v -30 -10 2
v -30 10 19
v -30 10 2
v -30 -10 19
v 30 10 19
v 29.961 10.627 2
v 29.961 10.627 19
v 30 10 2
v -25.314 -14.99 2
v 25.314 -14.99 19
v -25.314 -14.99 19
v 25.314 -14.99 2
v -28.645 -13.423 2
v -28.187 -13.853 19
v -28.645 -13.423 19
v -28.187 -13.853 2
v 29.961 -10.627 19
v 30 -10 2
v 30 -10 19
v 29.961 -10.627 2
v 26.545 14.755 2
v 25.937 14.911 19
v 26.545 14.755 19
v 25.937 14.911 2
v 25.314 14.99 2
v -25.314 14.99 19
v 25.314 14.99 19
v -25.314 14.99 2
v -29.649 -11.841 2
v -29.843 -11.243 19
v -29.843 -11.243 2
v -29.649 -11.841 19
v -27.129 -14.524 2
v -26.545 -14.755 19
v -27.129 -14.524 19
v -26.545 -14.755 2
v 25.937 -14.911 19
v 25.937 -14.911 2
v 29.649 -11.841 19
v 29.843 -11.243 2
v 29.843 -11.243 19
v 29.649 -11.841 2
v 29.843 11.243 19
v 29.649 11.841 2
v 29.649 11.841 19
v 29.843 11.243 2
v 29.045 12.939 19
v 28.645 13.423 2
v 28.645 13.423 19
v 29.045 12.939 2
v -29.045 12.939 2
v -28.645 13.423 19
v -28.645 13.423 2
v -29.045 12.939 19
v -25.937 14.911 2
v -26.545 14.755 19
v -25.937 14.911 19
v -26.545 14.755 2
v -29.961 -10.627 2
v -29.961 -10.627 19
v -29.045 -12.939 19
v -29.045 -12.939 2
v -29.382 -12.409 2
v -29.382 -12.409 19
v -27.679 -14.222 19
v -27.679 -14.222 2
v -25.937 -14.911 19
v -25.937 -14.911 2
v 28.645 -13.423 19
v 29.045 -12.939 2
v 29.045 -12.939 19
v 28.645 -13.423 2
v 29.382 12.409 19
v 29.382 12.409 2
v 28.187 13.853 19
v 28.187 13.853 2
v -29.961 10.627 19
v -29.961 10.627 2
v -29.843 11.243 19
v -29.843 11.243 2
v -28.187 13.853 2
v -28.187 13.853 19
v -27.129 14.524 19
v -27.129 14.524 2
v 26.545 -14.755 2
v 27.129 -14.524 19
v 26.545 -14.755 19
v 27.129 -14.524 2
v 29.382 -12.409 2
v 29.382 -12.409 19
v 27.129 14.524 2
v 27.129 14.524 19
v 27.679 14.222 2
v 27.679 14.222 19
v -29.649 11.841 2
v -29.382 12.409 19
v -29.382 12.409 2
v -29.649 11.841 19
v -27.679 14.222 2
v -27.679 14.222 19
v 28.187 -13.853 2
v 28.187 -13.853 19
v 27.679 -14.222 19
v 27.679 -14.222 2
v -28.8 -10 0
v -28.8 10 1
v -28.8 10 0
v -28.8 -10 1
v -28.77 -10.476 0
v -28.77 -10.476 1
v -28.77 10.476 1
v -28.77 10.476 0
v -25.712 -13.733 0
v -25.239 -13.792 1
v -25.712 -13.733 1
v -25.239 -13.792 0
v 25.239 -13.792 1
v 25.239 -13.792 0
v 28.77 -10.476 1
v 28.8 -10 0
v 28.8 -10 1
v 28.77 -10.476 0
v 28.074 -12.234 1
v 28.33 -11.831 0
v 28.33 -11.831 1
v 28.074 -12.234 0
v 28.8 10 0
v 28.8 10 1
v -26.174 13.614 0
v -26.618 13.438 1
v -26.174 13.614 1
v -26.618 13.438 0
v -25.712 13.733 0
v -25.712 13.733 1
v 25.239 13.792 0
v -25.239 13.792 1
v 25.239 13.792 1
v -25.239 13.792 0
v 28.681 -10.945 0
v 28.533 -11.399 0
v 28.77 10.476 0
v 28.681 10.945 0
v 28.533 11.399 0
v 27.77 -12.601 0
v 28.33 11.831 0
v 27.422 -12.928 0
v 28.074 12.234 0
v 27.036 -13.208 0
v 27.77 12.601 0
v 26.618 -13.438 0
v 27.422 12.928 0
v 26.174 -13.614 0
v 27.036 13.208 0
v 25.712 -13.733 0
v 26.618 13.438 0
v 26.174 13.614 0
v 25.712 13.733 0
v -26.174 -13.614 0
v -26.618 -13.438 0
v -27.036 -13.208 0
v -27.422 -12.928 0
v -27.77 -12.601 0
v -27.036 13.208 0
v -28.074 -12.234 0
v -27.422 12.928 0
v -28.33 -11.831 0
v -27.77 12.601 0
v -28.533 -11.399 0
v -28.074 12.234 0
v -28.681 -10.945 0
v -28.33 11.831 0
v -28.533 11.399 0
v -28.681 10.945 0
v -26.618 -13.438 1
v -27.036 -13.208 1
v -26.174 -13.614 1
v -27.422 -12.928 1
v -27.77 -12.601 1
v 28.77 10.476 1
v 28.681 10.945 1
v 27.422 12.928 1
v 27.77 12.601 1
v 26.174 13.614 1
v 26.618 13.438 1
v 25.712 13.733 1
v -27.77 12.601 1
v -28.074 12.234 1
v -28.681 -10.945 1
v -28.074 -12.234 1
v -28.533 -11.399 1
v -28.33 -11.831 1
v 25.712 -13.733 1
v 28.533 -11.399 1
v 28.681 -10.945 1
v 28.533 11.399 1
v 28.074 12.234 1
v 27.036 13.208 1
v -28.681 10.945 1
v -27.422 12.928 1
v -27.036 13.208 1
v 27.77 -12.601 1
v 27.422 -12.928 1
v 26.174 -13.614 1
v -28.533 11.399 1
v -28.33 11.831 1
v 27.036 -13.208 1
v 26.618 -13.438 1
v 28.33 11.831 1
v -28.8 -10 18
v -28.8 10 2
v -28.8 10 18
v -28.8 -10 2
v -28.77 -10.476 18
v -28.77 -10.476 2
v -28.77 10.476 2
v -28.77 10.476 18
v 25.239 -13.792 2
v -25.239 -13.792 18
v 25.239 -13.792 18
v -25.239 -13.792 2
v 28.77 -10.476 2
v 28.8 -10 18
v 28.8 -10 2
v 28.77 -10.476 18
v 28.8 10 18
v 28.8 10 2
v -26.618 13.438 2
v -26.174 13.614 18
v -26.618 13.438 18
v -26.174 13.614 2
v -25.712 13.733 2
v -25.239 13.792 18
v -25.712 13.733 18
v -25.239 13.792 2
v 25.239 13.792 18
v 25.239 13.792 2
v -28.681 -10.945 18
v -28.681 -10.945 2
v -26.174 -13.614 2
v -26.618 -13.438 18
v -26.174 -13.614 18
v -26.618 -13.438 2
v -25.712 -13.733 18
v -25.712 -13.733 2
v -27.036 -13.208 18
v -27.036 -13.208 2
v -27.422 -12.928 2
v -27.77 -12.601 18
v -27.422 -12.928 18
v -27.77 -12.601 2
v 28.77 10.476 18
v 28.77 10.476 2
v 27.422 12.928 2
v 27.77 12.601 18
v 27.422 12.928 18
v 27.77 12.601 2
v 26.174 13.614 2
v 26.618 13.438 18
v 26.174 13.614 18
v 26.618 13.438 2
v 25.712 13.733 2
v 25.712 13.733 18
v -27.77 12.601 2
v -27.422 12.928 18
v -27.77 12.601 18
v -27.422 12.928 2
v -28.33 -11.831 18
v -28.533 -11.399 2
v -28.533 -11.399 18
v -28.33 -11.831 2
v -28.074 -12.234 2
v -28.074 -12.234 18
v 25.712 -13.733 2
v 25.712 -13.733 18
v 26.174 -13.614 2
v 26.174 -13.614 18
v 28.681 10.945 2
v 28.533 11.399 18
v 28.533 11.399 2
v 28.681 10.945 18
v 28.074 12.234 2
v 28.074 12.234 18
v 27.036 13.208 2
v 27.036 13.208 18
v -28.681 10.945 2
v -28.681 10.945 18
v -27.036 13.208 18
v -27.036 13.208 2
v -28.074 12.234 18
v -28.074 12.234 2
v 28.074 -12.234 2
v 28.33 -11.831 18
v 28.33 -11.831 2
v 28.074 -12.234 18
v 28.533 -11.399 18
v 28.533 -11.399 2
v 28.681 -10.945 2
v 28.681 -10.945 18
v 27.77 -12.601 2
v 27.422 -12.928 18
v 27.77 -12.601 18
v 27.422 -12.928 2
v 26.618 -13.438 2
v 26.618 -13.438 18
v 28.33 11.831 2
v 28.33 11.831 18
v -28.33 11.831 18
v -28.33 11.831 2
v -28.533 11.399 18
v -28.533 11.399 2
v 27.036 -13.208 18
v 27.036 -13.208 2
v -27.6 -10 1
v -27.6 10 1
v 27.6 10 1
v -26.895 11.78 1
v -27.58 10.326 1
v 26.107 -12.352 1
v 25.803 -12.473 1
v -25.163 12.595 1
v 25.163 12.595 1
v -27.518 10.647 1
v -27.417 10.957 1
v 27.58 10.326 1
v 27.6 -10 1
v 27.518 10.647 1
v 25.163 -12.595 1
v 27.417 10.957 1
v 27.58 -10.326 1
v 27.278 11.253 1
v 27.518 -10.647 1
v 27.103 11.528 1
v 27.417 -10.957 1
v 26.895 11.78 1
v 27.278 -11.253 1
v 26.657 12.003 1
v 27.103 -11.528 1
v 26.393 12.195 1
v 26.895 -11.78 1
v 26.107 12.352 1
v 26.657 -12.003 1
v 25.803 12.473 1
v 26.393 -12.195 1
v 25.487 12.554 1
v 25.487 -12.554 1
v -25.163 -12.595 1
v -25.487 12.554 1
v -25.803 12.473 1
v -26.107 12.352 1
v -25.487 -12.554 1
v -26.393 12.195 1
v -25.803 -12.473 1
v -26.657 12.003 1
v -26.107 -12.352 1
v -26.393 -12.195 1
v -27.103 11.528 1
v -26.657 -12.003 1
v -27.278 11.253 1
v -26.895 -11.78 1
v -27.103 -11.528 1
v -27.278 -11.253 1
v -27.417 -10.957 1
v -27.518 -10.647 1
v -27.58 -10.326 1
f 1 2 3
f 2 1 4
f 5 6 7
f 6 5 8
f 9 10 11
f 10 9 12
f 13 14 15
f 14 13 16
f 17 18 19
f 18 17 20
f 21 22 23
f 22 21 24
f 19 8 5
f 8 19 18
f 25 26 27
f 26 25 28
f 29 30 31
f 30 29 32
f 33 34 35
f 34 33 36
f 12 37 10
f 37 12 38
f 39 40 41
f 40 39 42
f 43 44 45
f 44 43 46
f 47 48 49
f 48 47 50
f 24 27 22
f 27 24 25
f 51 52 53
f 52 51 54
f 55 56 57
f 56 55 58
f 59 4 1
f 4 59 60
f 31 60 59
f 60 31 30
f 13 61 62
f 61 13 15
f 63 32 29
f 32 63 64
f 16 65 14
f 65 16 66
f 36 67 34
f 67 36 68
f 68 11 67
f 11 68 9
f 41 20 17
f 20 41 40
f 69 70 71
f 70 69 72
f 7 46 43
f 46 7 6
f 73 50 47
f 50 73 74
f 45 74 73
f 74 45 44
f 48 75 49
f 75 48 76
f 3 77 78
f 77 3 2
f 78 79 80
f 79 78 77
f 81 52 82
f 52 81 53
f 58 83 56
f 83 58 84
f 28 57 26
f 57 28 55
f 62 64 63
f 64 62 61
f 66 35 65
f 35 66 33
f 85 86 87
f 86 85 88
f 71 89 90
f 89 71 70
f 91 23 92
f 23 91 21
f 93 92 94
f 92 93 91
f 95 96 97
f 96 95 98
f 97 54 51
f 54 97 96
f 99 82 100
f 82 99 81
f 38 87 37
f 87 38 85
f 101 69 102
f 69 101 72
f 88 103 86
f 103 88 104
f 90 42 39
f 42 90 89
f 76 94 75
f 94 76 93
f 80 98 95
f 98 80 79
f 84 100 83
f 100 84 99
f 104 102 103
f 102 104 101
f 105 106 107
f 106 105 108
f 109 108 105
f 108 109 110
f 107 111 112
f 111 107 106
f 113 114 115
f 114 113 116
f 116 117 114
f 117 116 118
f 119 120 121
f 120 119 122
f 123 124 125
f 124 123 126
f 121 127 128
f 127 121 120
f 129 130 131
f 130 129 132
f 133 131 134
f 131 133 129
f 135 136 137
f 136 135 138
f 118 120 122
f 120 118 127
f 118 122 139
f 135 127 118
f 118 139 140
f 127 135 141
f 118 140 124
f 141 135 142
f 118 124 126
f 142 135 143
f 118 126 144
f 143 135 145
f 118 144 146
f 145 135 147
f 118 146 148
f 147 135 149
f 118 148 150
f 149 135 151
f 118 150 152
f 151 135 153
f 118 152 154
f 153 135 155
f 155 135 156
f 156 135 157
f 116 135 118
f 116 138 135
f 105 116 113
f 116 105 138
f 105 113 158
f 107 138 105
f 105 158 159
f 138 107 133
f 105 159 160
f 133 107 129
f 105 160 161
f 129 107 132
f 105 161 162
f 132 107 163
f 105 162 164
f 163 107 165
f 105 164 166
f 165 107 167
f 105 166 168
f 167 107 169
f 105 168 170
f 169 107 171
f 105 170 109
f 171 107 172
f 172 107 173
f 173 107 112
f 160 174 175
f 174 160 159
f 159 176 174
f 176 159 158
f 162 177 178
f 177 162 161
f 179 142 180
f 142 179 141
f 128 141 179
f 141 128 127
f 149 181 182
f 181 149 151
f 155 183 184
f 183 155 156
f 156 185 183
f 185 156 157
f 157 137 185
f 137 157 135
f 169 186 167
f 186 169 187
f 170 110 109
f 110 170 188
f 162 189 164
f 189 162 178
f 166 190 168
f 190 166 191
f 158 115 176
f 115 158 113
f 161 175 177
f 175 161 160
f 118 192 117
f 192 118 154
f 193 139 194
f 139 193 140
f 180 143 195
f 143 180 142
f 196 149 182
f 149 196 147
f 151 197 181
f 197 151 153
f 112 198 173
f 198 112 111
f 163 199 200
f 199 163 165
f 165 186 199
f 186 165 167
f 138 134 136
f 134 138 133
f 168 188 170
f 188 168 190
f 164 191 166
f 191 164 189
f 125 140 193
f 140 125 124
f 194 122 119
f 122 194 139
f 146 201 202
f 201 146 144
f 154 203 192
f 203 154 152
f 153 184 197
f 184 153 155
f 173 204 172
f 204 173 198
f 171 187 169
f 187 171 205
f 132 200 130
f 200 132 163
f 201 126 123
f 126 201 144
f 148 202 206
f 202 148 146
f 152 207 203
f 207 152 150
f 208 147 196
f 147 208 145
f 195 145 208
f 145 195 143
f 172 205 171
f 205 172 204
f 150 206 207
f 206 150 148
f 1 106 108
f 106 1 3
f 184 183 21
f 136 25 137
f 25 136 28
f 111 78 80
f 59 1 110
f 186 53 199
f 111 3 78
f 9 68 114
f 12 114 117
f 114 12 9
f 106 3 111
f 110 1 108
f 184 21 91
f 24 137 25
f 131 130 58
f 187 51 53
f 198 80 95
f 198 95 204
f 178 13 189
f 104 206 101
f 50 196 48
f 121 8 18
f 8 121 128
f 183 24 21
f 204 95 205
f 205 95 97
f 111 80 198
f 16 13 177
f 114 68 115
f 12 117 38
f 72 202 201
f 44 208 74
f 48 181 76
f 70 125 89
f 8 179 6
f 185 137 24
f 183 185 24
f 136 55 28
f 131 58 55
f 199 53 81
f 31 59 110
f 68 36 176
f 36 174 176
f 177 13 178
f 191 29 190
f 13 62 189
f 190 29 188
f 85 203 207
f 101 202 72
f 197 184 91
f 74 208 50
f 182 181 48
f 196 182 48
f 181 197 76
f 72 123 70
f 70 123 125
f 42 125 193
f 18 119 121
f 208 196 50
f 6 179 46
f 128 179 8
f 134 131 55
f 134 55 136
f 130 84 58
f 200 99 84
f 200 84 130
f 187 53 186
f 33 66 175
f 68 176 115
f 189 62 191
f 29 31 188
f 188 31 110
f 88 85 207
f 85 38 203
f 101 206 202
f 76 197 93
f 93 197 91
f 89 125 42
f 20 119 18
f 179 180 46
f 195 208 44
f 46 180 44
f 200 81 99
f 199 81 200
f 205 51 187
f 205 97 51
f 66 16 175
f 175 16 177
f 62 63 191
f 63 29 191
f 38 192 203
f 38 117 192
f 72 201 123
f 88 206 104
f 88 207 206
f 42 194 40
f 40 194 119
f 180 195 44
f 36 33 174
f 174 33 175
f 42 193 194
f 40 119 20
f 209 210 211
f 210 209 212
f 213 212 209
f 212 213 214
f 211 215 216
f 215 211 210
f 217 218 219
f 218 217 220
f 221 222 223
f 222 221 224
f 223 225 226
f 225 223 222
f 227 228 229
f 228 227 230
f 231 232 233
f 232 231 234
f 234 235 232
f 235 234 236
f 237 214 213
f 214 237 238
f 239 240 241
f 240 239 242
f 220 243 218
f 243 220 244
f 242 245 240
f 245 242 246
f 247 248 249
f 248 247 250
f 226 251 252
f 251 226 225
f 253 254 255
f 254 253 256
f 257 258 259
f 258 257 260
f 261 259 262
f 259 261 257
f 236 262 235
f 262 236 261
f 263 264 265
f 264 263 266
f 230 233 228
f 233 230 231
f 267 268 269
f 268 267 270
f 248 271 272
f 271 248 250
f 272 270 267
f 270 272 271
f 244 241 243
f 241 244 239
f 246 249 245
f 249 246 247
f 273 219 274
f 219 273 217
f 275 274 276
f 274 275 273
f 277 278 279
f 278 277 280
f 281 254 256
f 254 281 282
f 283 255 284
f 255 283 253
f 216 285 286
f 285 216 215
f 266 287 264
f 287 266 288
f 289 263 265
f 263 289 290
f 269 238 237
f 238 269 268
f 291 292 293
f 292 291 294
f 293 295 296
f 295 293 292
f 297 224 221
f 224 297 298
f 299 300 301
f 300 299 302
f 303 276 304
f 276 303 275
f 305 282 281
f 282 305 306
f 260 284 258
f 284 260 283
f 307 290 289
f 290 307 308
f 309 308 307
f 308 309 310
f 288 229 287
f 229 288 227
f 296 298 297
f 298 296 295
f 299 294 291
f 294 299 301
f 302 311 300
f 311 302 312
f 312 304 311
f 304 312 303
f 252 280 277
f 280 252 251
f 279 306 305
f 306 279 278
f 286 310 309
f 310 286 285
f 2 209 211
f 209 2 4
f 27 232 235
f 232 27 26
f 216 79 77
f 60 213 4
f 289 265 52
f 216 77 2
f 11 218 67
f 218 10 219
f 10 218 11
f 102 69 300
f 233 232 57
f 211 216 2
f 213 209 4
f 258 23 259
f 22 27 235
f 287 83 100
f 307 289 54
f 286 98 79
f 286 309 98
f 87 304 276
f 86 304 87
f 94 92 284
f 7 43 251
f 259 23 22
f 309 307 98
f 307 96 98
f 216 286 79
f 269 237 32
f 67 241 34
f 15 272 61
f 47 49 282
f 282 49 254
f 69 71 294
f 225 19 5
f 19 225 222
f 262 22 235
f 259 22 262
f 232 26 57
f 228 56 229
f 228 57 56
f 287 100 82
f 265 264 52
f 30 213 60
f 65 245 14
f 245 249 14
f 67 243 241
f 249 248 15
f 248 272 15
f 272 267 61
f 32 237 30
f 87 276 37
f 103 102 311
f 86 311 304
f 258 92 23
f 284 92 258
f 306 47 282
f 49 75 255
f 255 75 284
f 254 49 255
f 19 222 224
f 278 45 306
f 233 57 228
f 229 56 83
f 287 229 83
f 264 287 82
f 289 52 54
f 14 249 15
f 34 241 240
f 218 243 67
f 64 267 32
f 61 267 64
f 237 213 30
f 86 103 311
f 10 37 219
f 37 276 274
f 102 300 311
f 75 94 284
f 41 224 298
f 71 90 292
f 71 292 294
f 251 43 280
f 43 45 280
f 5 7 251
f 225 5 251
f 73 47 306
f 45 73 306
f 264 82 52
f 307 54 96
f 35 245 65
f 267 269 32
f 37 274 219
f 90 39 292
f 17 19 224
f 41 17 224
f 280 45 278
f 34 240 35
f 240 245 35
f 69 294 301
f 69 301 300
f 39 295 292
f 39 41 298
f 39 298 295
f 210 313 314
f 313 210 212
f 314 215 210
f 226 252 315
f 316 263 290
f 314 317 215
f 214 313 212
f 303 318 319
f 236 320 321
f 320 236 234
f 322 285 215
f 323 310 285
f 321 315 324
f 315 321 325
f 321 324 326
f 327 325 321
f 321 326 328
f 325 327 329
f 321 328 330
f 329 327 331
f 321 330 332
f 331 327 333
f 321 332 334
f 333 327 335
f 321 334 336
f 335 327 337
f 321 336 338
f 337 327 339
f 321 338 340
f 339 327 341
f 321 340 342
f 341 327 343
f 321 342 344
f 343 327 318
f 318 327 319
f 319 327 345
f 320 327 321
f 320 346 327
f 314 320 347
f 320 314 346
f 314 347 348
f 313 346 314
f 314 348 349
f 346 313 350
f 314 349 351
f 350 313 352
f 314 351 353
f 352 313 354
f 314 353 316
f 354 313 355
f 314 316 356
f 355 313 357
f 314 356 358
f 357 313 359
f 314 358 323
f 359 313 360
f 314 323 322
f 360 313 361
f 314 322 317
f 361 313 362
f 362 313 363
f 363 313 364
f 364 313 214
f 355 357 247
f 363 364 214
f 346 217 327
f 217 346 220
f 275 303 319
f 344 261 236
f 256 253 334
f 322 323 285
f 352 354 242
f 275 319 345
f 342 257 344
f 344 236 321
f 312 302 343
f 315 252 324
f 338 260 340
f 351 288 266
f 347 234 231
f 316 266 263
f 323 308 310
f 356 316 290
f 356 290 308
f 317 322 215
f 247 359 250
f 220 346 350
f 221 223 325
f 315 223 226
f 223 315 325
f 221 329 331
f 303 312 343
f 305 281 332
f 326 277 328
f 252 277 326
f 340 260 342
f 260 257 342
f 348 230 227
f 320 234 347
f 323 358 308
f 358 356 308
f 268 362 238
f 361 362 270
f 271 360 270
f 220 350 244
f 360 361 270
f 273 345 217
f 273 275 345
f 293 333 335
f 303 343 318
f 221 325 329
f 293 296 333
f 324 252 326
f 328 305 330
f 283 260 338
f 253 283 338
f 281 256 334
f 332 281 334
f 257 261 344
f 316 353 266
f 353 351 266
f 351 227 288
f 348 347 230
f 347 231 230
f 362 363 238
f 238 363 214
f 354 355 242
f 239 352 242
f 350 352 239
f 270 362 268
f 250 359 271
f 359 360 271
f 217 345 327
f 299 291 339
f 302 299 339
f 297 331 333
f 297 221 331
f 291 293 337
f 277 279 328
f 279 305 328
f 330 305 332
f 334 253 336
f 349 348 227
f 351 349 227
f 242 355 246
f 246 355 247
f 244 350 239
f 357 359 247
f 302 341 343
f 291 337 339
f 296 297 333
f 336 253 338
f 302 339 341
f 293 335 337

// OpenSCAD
$fn = 50;


difference() {
	union() {
		translate(v = [0, 0, 2]) {
			hull() {
				translate(v = [-25.0000000000, 10.0000000000, 0]) {
					cylinder(h = 17, r = 5);
				}
				translate(v = [25.0000000000, 10.0000000000, 0]) {
					cylinder(h = 17, r = 5);
				}
				translate(v = [-25.0000000000, -10.0000000000, 0]) {
					cylinder(h = 17, r = 5);
				}
				translate(v = [25.0000000000, -10.0000000000, 0]) {
					cylinder(h = 17, r = 5);
				}
			}
		}
		hull() {
			translate(v = [-25.0000000000, 10.0000000000, 0]) {
				cylinder(h = 1, r = 3.8000000000);
			}
			translate(v = [25.0000000000, 10.0000000000, 0]) {
				cylinder(h = 1, r = 3.8000000000);
			}
			translate(v = [-25.0000000000, -10.0000000000, 0]) {
				cylinder(h = 1, r = 3.8000000000);
			}
			translate(v = [25.0000000000, -10.0000000000, 0]) {
				cylinder(h = 1, r = 3.8000000000);
			}
		}
		translate(v = [0, 0, 1]) {
			hull() {
				translate(v = [-25.0000000000, 10.0000000000, 0]) {
					cylinder(h = 1, r1 = 3.8000000000, r2 = 5.0000000000);
				}
				translate(v = [25.0000000000, 10.0000000000, 0]) {
					cylinder(h = 1, r1 = 3.8000000000, r2 = 5.0000000000);
				}
				translate(v = [-25.0000000000, -10.0000000000, 0]) {
					cylinder(h = 1, r1 = 3.8000000000, r2 = 5.0000000000);
				}
				translate(v = [25.0000000000, -10.0000000000, 0]) {
					cylinder(h = 1, r1 = 3.8000000000, r2 = 5.0000000000);
				}
			}
		}
	}
	union() {
		translate(v = [0, 0, 2]) {
			#hull() {
				translate(v = [-25.0000000000, 10.0000000000, 0]) {
					cylinder(h = 17, r = 3.8000000000);
				}
				translate(v = [25.0000000000, 10.0000000000, 0]) {
					cylinder(h = 17, r = 3.8000000000);
				}
				translate(v = [-25.0000000000, -10.0000000000, 0]) {
					cylinder(h = 17, r = 3.8000000000);
				}
				translate(v = [25.0000000000, -10.0000000000, 0]) {
					cylinder(h = 17, r = 3.8000000000);
				}
			}
		}
		translate(v = [0, 0, 18]) {
			hull() {
				translate(v = [-25.0000000000, 10.0000000000, 0]) {
					cylinder(h = 1, r1 = 3.8000000000, r2 = 5.0000000000);
				}
				translate(v = [25.0000000000, 10.0000000000, 0]) {
					cylinder(h = 1, r1 = 3.8000000000, r2 = 5.0000000000);
				}
				translate(v = [-25.0000000000, -10.0000000000, 0]) {
					cylinder(h = 1, r1 = 3.8000000000, r2 = 5.0000000000);
				}
				translate(v = [25.0000000000, -10.0000000000, 0]) {
					cylinder(h = 1, r1 = 3.8000000000, r2 = 5.0000000000);
				}
			}
		}
		translate(v = [0, 0, 1]) {
			#hull() {
				translate(v = [-25.0000000000, 10.0000000000, 0]) {
					cylinder(h = 1, r1 = 2.6000000000, r2 = 3.8000000000);
				}
				translate(v = [25.0000000000, 10.0000000000, 0]) {
					cylinder(h = 1, r1 = 2.6000000000, r2 = 3.8000000000);
				}
				translate(v = [-25.0000000000, -10.0000000000, 0]) {
					cylinder(h = 1, r1 = 2.6000000000, r2 = 3.8000000000);
				}
				translate(v = [25.0000000000, -10.0000000000, 0]) {
					cylinder(h = 1, r1 = 2.6000000000, r2 = 3.8000000000);
				}
			}
		}
	}
}
